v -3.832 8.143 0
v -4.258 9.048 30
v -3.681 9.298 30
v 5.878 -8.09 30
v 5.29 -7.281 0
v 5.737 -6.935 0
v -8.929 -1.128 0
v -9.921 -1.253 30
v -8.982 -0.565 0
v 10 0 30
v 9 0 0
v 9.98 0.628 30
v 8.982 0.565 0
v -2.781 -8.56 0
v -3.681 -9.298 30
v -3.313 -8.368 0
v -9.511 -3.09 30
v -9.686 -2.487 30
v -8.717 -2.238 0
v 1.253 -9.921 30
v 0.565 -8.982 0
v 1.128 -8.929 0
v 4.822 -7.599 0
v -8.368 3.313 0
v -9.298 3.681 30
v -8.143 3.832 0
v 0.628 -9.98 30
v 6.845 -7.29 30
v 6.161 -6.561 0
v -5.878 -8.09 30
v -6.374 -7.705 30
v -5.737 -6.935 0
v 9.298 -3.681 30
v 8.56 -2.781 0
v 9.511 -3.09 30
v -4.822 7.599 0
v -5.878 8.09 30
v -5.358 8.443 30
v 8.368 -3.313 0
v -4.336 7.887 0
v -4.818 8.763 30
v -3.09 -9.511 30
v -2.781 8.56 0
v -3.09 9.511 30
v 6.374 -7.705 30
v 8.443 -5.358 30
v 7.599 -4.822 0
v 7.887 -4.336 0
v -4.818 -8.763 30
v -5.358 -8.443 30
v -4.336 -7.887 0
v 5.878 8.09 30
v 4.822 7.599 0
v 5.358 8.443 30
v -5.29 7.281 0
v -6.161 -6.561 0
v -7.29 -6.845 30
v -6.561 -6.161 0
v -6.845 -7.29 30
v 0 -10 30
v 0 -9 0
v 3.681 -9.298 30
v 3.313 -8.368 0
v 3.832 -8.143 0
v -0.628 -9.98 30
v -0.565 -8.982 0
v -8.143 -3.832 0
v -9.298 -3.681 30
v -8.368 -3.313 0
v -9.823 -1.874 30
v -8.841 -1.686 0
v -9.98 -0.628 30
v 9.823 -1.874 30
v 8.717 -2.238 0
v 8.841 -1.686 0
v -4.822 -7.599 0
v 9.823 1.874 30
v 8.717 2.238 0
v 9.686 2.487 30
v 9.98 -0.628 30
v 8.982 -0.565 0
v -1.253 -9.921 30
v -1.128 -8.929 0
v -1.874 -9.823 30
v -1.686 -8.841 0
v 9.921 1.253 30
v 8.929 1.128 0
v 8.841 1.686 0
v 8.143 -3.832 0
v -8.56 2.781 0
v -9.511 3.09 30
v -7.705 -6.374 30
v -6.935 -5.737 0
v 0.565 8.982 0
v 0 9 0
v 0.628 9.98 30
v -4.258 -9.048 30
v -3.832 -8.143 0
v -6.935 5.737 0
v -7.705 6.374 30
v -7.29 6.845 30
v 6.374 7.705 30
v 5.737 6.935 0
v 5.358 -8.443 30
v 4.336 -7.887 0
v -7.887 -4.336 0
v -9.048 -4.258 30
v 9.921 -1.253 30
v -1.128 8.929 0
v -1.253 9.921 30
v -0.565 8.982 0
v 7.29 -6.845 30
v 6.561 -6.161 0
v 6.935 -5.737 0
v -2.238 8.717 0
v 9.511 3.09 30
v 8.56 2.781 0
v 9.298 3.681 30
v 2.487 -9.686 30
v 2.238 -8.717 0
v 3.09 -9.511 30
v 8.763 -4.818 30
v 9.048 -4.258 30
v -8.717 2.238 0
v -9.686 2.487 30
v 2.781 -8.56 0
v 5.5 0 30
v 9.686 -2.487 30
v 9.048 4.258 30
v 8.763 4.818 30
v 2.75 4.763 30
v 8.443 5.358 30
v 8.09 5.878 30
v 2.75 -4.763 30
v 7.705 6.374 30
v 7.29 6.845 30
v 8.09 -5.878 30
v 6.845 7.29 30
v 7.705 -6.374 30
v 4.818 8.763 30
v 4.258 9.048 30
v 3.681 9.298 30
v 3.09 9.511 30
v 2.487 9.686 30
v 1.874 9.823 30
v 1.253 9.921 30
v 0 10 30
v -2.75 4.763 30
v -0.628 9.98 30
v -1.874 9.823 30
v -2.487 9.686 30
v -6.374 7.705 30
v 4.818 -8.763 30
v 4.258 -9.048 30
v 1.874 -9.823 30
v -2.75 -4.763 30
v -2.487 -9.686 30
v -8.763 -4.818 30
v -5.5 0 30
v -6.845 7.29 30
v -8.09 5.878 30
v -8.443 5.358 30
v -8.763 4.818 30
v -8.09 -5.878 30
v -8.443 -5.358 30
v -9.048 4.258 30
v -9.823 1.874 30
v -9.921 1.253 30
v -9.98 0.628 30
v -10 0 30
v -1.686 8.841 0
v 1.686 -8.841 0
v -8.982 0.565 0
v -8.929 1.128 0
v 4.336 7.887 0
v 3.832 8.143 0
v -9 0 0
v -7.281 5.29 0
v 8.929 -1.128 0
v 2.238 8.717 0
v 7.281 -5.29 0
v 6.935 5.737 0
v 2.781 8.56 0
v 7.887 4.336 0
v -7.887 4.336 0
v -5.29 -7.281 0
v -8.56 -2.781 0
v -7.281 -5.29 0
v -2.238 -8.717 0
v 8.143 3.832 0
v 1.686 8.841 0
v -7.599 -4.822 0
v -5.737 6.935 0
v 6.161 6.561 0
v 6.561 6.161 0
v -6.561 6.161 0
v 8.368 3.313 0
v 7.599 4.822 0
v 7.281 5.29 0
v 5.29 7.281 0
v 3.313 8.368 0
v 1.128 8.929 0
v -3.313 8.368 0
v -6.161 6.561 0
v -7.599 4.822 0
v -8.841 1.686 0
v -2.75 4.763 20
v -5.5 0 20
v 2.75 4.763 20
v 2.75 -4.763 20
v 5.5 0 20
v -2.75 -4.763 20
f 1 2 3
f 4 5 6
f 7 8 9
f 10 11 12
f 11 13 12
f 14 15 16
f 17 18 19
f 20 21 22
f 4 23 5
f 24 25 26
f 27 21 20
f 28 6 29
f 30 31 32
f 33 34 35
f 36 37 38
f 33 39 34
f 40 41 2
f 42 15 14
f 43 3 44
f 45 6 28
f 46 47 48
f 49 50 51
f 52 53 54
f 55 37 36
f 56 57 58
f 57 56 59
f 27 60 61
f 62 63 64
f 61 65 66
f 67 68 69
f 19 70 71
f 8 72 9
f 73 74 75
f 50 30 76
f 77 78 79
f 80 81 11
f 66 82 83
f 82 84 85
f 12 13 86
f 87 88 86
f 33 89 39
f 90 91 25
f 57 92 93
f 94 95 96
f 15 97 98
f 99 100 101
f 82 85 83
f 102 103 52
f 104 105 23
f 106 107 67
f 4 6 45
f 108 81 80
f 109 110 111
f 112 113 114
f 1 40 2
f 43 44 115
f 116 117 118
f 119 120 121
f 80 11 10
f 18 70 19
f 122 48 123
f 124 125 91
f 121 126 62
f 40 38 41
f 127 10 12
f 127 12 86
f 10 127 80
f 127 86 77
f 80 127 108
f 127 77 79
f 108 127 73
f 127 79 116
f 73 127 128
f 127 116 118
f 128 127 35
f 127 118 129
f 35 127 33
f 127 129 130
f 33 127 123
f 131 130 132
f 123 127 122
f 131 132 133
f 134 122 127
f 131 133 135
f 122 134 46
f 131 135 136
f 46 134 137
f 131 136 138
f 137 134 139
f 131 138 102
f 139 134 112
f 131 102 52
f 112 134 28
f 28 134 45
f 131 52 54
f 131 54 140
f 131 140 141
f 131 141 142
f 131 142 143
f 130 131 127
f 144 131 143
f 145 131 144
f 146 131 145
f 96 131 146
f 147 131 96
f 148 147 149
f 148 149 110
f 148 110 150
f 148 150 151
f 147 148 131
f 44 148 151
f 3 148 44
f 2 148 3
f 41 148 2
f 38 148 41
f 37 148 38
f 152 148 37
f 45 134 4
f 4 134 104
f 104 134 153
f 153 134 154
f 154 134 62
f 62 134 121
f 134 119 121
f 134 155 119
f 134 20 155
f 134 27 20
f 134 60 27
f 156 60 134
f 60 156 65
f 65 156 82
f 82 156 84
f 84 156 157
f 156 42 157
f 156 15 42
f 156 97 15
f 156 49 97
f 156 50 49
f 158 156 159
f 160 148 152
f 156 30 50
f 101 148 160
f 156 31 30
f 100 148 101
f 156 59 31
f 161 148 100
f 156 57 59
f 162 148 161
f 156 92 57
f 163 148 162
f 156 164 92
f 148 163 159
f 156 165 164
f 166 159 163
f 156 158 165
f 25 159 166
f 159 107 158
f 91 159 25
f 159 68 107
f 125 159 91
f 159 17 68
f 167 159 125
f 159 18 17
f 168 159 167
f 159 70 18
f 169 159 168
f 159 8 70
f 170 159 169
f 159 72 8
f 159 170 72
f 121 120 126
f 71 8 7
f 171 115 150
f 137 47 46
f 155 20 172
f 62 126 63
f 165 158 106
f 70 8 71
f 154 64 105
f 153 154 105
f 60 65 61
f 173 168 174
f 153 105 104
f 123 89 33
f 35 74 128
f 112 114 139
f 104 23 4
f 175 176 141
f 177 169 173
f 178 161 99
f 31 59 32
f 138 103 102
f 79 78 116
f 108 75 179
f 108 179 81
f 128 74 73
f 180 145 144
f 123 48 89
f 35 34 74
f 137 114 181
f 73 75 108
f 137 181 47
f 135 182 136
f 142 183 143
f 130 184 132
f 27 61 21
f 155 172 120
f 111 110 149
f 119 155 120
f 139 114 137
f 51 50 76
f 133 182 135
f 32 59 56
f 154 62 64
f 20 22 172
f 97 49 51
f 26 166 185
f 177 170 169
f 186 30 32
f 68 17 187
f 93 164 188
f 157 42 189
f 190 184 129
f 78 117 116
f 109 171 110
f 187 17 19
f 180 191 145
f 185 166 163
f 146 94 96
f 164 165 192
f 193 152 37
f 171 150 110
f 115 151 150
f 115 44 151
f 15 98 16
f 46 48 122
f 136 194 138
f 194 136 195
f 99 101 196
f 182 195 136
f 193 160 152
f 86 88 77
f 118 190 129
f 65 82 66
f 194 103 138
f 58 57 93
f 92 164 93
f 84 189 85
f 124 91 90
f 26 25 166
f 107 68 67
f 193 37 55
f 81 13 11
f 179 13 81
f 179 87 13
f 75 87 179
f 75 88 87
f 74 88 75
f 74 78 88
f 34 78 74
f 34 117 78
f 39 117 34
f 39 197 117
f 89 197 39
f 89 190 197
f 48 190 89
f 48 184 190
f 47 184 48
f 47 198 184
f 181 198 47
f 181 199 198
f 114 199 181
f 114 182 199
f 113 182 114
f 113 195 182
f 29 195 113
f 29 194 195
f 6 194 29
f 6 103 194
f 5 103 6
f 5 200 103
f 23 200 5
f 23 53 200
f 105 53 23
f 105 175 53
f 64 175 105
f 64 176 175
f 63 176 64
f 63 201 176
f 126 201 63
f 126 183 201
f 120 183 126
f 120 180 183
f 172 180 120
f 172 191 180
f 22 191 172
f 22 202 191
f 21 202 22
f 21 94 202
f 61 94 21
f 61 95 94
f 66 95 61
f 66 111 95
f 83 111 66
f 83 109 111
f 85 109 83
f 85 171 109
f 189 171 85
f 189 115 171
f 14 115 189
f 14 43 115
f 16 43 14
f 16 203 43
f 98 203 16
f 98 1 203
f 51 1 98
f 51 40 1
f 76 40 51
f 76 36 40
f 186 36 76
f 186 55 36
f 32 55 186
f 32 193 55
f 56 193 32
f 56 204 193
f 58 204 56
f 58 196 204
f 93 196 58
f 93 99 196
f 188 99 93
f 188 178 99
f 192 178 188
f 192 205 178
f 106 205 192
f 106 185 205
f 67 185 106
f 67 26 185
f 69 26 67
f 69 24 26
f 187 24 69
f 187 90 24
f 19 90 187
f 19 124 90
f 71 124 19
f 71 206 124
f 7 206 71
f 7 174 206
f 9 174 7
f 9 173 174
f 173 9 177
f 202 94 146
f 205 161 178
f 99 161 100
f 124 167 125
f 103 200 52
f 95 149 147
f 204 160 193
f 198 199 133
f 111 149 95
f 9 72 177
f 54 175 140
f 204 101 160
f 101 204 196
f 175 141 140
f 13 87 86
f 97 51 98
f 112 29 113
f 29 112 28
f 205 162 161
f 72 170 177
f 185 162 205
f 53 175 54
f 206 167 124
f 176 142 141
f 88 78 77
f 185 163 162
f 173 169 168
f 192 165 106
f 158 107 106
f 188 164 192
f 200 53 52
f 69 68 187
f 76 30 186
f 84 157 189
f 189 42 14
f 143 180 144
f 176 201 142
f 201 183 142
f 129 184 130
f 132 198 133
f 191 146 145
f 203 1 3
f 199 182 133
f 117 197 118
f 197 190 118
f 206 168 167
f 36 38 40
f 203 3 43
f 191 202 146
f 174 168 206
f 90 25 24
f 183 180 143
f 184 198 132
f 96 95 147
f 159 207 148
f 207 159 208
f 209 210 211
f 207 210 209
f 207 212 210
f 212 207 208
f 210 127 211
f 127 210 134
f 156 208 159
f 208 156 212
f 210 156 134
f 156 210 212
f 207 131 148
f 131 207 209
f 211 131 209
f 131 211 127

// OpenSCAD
// Parameters
nut_height = 30;
nut_radius = 10;
hex_radius = 5.5; // Distance from center to flat of hex
hex_depth = 10;

// Main nut body
module nut_body() {
    cylinder(h = nut_height, r1 = nut_radius * 0.9, r2 = nut_radius, $fn = 100); // Slight taper
}

// Hexagonal socket
module hex_socket() {
    rotate([0, 0, 0])
        linear_extrude(height = hex_depth)
            polygon(points = [
                [cos(0)*hex_radius, sin(0)*hex_radius],
                [cos(60)*hex_radius, sin(60)*hex_radius],
                [cos(120)*hex_radius, sin(120)*hex_radius],
                [cos(180)*hex_radius, sin(180)*hex_radius],
                [cos(240)*hex_radius, sin(240)*hex_radius],
                [cos(300)*hex_radius, sin(300)*hex_radius]
            ]);
}

// Final nut with hex socket
difference() {
    nut_body();
    translate([0, 0, nut_height - hex_depth])
        hex_socket();
}
